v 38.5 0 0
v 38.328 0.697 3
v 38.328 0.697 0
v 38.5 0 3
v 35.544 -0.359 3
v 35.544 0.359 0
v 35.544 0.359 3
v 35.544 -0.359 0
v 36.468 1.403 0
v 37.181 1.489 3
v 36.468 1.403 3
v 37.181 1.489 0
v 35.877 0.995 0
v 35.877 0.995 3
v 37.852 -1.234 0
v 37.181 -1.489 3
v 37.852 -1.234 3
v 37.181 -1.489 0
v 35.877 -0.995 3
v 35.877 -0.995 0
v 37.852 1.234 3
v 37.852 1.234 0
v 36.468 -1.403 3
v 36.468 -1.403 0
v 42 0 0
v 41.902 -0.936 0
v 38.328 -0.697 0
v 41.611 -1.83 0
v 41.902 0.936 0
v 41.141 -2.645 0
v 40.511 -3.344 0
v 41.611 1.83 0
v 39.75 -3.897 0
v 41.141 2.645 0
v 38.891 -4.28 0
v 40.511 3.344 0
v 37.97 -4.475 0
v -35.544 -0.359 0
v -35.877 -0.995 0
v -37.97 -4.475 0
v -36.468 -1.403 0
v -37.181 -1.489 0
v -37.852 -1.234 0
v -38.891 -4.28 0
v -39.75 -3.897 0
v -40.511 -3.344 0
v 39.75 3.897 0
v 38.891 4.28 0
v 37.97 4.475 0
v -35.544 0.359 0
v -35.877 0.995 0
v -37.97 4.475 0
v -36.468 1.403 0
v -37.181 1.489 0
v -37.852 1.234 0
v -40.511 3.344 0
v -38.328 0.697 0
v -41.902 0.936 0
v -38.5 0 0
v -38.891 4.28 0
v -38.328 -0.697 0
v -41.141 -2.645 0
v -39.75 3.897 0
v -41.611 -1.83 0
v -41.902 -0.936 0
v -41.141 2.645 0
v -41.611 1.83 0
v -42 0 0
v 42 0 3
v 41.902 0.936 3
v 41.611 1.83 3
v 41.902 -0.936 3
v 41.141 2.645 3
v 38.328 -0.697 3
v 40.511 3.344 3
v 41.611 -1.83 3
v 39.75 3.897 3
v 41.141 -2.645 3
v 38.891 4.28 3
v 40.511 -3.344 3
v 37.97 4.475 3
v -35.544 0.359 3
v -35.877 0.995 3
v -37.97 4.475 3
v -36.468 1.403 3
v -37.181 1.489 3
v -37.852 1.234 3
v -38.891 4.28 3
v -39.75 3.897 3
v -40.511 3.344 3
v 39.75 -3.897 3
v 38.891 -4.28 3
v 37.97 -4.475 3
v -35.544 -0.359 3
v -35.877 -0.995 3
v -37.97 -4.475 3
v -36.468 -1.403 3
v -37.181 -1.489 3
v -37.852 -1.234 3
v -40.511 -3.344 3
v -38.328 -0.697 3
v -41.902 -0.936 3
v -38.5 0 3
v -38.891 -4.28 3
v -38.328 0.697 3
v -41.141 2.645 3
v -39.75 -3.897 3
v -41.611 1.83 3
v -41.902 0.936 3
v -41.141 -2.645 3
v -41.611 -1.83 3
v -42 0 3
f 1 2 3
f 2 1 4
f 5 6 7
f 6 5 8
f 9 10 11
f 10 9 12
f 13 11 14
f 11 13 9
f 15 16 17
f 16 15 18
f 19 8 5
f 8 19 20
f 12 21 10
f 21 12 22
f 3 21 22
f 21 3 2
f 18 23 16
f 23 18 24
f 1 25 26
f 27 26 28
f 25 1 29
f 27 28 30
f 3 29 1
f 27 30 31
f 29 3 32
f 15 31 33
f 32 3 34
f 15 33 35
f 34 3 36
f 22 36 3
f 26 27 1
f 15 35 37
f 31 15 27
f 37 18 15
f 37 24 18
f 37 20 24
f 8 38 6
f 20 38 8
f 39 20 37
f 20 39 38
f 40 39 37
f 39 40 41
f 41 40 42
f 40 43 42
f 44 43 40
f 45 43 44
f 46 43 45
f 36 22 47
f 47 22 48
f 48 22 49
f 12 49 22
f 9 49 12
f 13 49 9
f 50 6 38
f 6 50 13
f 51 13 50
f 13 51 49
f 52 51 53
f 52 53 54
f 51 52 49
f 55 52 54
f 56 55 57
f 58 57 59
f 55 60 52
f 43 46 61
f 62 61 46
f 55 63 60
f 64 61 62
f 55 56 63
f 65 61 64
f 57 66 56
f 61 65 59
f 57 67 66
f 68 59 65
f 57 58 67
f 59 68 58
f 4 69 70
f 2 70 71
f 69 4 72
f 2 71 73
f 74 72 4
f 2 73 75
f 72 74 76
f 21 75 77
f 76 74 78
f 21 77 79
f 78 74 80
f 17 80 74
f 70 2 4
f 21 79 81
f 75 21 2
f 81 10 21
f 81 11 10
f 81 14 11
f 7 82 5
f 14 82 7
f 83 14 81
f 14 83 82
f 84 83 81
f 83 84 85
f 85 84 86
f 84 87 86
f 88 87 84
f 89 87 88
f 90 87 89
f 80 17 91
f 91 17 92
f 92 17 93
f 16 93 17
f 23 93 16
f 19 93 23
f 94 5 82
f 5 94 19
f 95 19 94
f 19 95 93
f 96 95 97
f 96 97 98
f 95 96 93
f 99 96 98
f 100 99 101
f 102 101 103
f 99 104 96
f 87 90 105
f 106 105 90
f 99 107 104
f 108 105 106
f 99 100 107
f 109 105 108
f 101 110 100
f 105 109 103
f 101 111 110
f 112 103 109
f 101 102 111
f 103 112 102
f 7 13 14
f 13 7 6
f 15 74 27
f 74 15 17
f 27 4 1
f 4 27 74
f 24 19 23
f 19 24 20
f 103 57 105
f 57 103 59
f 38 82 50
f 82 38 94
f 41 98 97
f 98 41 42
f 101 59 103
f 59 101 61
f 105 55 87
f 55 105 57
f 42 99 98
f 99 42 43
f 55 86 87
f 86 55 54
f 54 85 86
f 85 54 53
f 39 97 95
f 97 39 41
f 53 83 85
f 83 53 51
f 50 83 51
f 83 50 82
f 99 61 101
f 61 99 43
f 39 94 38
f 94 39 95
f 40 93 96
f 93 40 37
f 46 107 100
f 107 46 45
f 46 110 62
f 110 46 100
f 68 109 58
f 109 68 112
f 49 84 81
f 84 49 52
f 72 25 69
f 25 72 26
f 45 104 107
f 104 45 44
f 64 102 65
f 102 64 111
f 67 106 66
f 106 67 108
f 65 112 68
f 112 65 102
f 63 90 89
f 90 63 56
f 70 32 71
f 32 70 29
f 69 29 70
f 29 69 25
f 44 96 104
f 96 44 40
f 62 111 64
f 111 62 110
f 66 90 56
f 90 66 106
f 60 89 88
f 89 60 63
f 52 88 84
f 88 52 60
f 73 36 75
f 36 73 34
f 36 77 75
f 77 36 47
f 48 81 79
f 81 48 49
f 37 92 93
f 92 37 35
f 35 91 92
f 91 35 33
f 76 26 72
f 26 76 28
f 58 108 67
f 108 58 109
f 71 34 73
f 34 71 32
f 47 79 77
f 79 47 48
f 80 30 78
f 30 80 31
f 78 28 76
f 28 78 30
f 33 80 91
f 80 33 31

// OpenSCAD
$fs=.75;

difference() {
	hull() {
		translate(v = [-37.5000000000, 0, 0]) {
			cylinder(d = 9, h = 3);
		}
		translate(v = [37.5000000000, 0, 0]) {
			cylinder(d = 9, h = 3);
		}
	}
	union() {
		translate(v = [37, 0, 0]) {
			cylinder(d = 3.0000000000, h = 3);
		}
		mirror(v = [1, 0, 0]) {
			translate(v = [37, 0, 0]) {
				cylinder(d = 3.0000000000, h = 3);
			}
		}
	}
}
/***********************************************
*********      SolidPython code:      **********
************************************************
 
from solid import *
from solid import extensions
from math import *

class Object:
    pass

l = 75
hole = 3.0
thk=3
h=9

def rbeam(w,l,thk):
	return hull(cylinder(d=w,h=thk).move(x=-l/2.),
	     	     cylinder(d=w,h=thk).move(x=l/2.))


beam = ( rbeam(h,l,thk)
	     - cylinder(d=hole,h=thk).move(x=l/2).mirrorCopy('x')
	    )

scene = beam
scad_render_to_file(scene, 'preview.scad', '$fs=.75;')
 
 
************************************************/
